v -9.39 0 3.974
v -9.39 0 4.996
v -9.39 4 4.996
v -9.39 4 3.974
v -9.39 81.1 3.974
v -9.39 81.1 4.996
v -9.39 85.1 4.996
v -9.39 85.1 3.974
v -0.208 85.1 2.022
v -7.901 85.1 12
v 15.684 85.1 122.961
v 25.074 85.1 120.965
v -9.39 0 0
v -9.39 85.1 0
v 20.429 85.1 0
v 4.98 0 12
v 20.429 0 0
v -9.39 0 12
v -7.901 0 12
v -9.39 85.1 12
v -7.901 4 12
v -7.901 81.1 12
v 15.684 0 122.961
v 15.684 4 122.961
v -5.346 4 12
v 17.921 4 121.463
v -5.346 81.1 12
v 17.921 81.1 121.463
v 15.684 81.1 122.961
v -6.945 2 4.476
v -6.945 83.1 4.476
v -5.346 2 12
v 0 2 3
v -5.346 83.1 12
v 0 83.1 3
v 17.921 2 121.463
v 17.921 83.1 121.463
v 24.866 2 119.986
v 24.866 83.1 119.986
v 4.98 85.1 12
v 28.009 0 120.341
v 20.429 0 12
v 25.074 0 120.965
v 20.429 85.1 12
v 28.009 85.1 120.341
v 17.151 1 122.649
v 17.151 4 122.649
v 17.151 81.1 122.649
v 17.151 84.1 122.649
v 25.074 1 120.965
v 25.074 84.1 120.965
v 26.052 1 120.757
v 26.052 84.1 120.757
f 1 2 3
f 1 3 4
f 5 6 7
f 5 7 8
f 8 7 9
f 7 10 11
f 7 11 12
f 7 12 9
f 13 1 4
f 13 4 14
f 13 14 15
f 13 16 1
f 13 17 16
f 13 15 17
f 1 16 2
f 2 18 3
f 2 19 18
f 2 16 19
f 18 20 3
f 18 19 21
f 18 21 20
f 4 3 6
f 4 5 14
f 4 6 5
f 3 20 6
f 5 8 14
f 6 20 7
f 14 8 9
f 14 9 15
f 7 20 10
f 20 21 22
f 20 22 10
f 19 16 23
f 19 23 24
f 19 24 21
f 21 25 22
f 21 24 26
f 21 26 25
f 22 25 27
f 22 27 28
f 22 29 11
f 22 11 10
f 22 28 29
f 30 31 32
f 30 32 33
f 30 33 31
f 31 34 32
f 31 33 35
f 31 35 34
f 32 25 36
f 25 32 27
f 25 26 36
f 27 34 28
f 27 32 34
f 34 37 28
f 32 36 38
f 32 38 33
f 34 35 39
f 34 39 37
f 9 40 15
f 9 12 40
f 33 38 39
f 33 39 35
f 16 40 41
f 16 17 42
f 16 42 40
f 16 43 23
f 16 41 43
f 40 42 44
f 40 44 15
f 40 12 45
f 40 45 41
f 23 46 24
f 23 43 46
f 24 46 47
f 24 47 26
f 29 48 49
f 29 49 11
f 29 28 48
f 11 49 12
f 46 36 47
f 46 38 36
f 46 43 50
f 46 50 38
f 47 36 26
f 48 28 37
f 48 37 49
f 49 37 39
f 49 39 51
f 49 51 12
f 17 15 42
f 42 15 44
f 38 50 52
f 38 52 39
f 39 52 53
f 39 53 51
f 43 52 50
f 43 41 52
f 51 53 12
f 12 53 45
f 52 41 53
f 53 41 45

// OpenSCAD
// psa-stand-01.scad
// Suporte de mesa pra UMA slab graduada PSA, inclinada 12° pra trás.
// UMA peça só, ABERTA EM CIMA, imprime sem suporte.
// derived_from: ../ars-stand-01 e ../bgs-stand-01 (mesmo desenho, aprovados no print-review,
// ainda sem teste físico),
// só com a medida da slab PSA.
//
// COMO SE USA: a slab desce POR CIMA, entre os dois trilhos, e escorrega até
// o fundo do canal. Pra tirar, pinça a faixa de cima da slab que fica acima
// dos trilhos (~14.5mm, ver slab_livre) e puxa pra cima. Não há trava.
// A ETIQUETA da PSA fica no TOPO da slab: a faixa de cima sai totalmente
// livre acima dos trilhos e, abaixo dela, a aba só toca 1.0-2.0mm das bordas
// laterais (a moldura de plástico da slab, fora da etiqueta).
//
// O QUE SEGURA A SLAB:
//   - atrás: o PAINEL. A inclinação de 12° joga o peso da slab contra ele;
//     o centro de massa da slab (assentada) fica atrás da aresta de
//     baixo/frente dela (ver echo cg_atras_pivo), então não tomba pra frente
//     nem sem aba nenhuma;
//   - na frente: a ABA dos trilhos, que cobre 1.0-2.0mm de cada borda lateral
//     (1.5 com a slab centrada) da face ao longo de toda a altura do trilho;
//   - dos lados: as paredes dos trilhos;
//   - embaixo: o piso do canal e o LÁBIO frontal da base (ver echo
//     labio_cobre, medido com a slab assentada contra o painel).
//   Pra cima só a gravidade segura — de propósito, é por onde ela sai.
//
// MEDIDA REAL: slab PSA medida pelo usuário, confirmada e remedida em
// 2026-10-13: 80.1 x 135.1 x 6.1 mm (largura x altura x espessura). Não é
// estimativa nem catálogo (as estimativas antigas do repo, 83.6-85.4 de
// largura, NÃO valem aqui).
//
// Exports canônicos (caminhos ABSOLUTOS; nesta máquina Windows o binário é
// "C:/Program Files/OpenSCAD/openscad.com"; no Linux, flatpak run org.openscad.OpenSCAD):
//   openscad -o <abs>/stl/psa-stand-01-stand.stl -D 'part="stand"' <abs>/psa-stand-01.scad
//   openscad -o <abs>/3mf/psa-stand-01.3mf       -D 'part="stand"' <abs>/psa-stand-01.scad
// O job de impressão é a própria peça, em pé (base na mesa), sem suporte.

/* [Peça a renderizar] */
part = "stand"; // "stand" | "check" (suporte + slab fantasma)

/* [Slab PSA - medida REAL do usuário, remedida 2026-10-13] */
slab_w = 80.1;  // mm, largura
slab_h = 135.1; // mm, altura (a etiqueta fica no topo)
slab_t = 6.1;   // mm, espessura

/* [Folgas] */
fit_w = 0.5; // mm por lado, na largura (deslize longo: padrão 0.5/lado do repo)
fit_t = 0.5; // mm por lado, na espessura (idem)
fit_h = 0.5; // mm de sobra no comprimento, no fundo do canal
mouth_ch = 1; // mm, chanfro de entrada na boca do canal (topo dos trilhos e do painel)

/* [Postura] */
lean = 12; // graus de inclinação pra trás (o de referência tinha 11.9)

/* [Painel e trilhos] */
panel_t  = 3;   // mm, espessura do painel de trás
wall     = 2;   // mm, espessura da parede lateral do trilho
rail_lip = 2;   // mm, quanto a aba do trilho avança pra dentro do vão (por lado)
lip_t    = 2.5; // mm, espessura da aba do trilho e do lábio frontal da base
grip     = 15;  // mm do canal (L) que ficam acima dos trilhos e do painel; com a
                // slab assentada no piso sobram slab_livre = 14.5mm dela pra pinçar
rail_sink = 1;  // mm que o pé dos trilhos afunda na base (só fusão, não muda o vão)

/* [Base] */
floor_z   = 3;  // mm, material sólido abaixo do canal
lip_h     = 9;  // mm, altura do lábio frontal acima do piso do canal
base_back = 18; // mm, quanto a base avança atrás do pé do painel (é o que
                // impede o conjunto de cair pra trás — o centro de massa fica
                // atrás do painel por causa da inclinação)

/* [Qualidade] */
$fn = 48;

// ---------------------------------------------------------------------
// Derivados
// ---------------------------------------------------------------------
slot_t  = slab_t + 2 * fit_t; // vão pra espessura da slab
slot_w  = slab_w + 2 * fit_w; // vão pra largura da slab
outer_w = slot_w + 2 * wall;  // largura externa
L       = slab_h + fit_h;     // comprimento útil do canal, ao longo da slab

rail_d       = slot_t + lip_t;  // quanto o trilho avança à frente do painel
top_du       = L - grip;        // trilhos e painel terminam aqui (ao longo da slab)
lip_top      = floor_z + lip_h; // topo do lábio frontal da base

// Referencial da slab -> XZ do mundo.
// du = ao longo da slab (pra cima), dn = pra frente (saindo da face do painel).
// A origem (du=0, dn=0) é o canto de baixo/de trás do vão.
function pt(du, dn) = [ du * sin(lean) - dn * cos(lean),
                        floor_z + du * cos(lean) + dn * sin(lean) ];
// x da linha de dn constante, na altura z
function x_at_z(z, dn) = ((z - floor_z - dn * sin(lean)) / cos(lean)) * sin(lean)
                         - dn * cos(lean);

// A frente da base fica alinhada com o ponto mais avançado do trilho.
lip_front_x  = -rail_d * cos(lean);
base_back_x  = x_at_z(0, -panel_t) + base_back;
total_h      = pt(top_du, slot_t + lip_t)[1];   // ponto mais alto: frente do trilho no topo
base_depth   = base_back_x - lip_front_x;
env_back_x   = pt(top_du, -panel_t)[0];
env_depth    = max(base_back_x, env_back_x) - lip_front_x;
face_visivel = slot_w - 2 * rail_lip;
lip_sobre_slab = wall + rail_lip - (wall + fit_w); // aba cobrindo a borda da slab, por lado
// Slab ASSENTADA: apoiada no piso (du=0) e deitada contra o painel (dn=0..slab_t),
// que é onde a gravidade e a inclinação deixam ela.
slab_livre   = slab_h - top_du;                    // mm de slab acima dos trilhos, pra pinçar
slab_cg_du   = slab_h / 2;                         // centro da slab ao longo do canal
// recuo horizontal do CG da slab atrás da aresta de baixo/frente dela (pivô de tombar pra frente)
cg_atras_pivo = pt(slab_cg_du, slab_t / 2)[0] - pt(0, slab_t)[0];
montado_h    = pt(slab_h, slab_t)[1];              // altura do conjunto: canto de cima/frente da slab
// quanto o lábio da base cobre da parte de baixo da face da slab, medido ao longo da slab
labio_cobre  = (lip_top - floor_z - slab_t * sin(lean)) / cos(lean);

assert(grip > 0 && grip < slab_h / 2, "grip tem que deixar a maior parte da slab nos trilhos");
assert(top_du > slab_cg_du, "o centro da slab precisa ficar abaixo do topo dos trilhos");
assert(lip_sobre_slab > 0, "a aba tem que cobrir a borda da slab");

echo(str("psa-stand-01 SUPORTE: envelope ", env_depth, " x ", outer_w, " x ", total_h,
         " mm | base na mesa ", base_depth, " mm de profundidade"));
echo(str("  slab ", slab_w, " x ", slab_h, " x ", slab_t,
         " -> vao ", slot_w, " x ", L, " x ", slot_t, " | folga/lado ", fit_w, "/", fit_t));
echo(str("  trilhos/painel ate ", top_du, " mm ao longo da slab; ", slab_livre,
         " mm da slab livres acima pra pinçar | curso de insercao ", top_du, " mm"));
echo(str("  montado com slab: ", montado_h, " mm de altura | labio da base cobre ", labio_cobre,
         " mm da parte de baixo da face"));
echo(str("  aba cobre ", lip_sobre_slab, " mm de cada borda | face visivel ", face_visivel,
         " de ", slab_w, " mm | CG da slab ", cg_atras_pivo, " mm atras do pivo frontal"));

// ---------------------------------------------------------------------
// Suporte
// ---------------------------------------------------------------------
module stand() {
    difference() {
        // a intersecao apara o que o pe afundado dos trilhos passaria da frente da base
        intersection() {
            union() {
                // corpo: base + painel, em toda a largura
                xz_extrude(outer_w) polygon(body_profile());
                // dois trilhos em C, um em cada borda (o da direita espelhado)
                rail(0);
                rail(outer_w, true);
            }
            translate([lip_front_x, -1, 0]) cube([500, outer_w + 2, 500]);
        }
        mouth_chamfer();
    }
}

// Silhueta lateral do corpo (base + painel). O vão da slab NÃO faz parte dela
// — é o recorte entre o lábio frontal e a face do painel; quem devolve as
// paredes desse canal são os trilhos.
function body_profile() = [
    [lip_front_x, 0],                        // frente, na mesa
    [lip_front_x, lip_top],                  // sobe a face do lábio
    [x_at_z(lip_top, slot_t), lip_top],      // topo do lábio
    pt(0, slot_t),                           // desce a face frontal do canal
    pt(0, 0),                                // piso do canal (inclinado, casa com a base da slab)
    pt(top_du, 0),                           // sobe a face frontal do painel
    pt(top_du, -panel_t),                    // topo do painel
    [x_at_z(lip_top, -panel_t), lip_top],    // desce a face de trás do painel
    [base_back_x, lip_top],                  // topo da base, atrás do painel
    [base_back_x, 0]                         // face de trás da base, na mesa
];

// Trilho em C numa borda: parede lateral + aba que avança sobre a face da
// slab. Tudo parede vertical: a cada camada a seção é a de baixo deslocada
// 0.04mm pela inclinação, então não existe balanço nenhum.
module rail(y0, flip = false) {
    in_slab_frame()
        translate([0, y0, 0]) {
            if (flip) mirror([0, 1, 0]) rail_body();
            else rail_body();
        }
}

module rail_body() {
    // começa rail_sink abaixo do piso do canal pra fundir de verdade com a base
    // (com o pé exatamente no plano do piso sobrava uma lasca de 1e-5mm)
    translate([-rail_d, 0, -rail_sink]) cube([rail_d, wall, top_du + rail_sink]);           // parede lateral
    translate([-rail_d, 0, -rail_sink]) cube([lip_t, wall + rail_lip, top_du + rail_sink]); // aba sobre a face da slab
}

// Chanfro de entrada na boca: tronco de pirâmide que abre o vão em mouth_ch
// pra cada lado no topo (aba, paredes e painel), guiando a slab pra dentro.
module mouth_chamfer() {
    in_slab_frame()
        hull() {
            translate([-slot_t, wall, top_du - mouth_ch])
                cube([slot_t, slot_w, 0.01]);
            translate([-slot_t - mouth_ch, wall - mouth_ch, top_du])
                cube([slot_t + 2 * mouth_ch, slot_w + 2 * mouth_ch, 1]);
        }
}

// ---------------------------------------------------------------------
// Comuns
// ---------------------------------------------------------------------
// Coloca os filhos no referencial da slab: X = pra TRÁS, Y = largura,
// Z = ao longo da slab. A origem fica no canto de baixo/de trás do vão.
module in_slab_frame() {
    translate([0, 0, floor_z])
        rotate([0, lean, 0])
            children();
}

// A slab, só pra conferência visual de encaixe (part="check"), assentada.
module slab_ghost() {
    in_slab_frame()
        translate([-slab_t, wall + fit_w, 0])  // assentada: no piso, contra o painel
            cube([slab_t, slab_w, slab_h]);
}

// Extrusão de um perfil do plano XZ ao longo de Y (0..h).
module xz_extrude(h) {
    translate([0, h, 0])
        rotate([90, 0, 0])
            linear_extrude(h)
                children();
}

// ---------------------------------------------------------------------
// Render
// ---------------------------------------------------------------------
if (part == "check") {
    stand();
    %slab_ghost();
} else {
    stand();
}
